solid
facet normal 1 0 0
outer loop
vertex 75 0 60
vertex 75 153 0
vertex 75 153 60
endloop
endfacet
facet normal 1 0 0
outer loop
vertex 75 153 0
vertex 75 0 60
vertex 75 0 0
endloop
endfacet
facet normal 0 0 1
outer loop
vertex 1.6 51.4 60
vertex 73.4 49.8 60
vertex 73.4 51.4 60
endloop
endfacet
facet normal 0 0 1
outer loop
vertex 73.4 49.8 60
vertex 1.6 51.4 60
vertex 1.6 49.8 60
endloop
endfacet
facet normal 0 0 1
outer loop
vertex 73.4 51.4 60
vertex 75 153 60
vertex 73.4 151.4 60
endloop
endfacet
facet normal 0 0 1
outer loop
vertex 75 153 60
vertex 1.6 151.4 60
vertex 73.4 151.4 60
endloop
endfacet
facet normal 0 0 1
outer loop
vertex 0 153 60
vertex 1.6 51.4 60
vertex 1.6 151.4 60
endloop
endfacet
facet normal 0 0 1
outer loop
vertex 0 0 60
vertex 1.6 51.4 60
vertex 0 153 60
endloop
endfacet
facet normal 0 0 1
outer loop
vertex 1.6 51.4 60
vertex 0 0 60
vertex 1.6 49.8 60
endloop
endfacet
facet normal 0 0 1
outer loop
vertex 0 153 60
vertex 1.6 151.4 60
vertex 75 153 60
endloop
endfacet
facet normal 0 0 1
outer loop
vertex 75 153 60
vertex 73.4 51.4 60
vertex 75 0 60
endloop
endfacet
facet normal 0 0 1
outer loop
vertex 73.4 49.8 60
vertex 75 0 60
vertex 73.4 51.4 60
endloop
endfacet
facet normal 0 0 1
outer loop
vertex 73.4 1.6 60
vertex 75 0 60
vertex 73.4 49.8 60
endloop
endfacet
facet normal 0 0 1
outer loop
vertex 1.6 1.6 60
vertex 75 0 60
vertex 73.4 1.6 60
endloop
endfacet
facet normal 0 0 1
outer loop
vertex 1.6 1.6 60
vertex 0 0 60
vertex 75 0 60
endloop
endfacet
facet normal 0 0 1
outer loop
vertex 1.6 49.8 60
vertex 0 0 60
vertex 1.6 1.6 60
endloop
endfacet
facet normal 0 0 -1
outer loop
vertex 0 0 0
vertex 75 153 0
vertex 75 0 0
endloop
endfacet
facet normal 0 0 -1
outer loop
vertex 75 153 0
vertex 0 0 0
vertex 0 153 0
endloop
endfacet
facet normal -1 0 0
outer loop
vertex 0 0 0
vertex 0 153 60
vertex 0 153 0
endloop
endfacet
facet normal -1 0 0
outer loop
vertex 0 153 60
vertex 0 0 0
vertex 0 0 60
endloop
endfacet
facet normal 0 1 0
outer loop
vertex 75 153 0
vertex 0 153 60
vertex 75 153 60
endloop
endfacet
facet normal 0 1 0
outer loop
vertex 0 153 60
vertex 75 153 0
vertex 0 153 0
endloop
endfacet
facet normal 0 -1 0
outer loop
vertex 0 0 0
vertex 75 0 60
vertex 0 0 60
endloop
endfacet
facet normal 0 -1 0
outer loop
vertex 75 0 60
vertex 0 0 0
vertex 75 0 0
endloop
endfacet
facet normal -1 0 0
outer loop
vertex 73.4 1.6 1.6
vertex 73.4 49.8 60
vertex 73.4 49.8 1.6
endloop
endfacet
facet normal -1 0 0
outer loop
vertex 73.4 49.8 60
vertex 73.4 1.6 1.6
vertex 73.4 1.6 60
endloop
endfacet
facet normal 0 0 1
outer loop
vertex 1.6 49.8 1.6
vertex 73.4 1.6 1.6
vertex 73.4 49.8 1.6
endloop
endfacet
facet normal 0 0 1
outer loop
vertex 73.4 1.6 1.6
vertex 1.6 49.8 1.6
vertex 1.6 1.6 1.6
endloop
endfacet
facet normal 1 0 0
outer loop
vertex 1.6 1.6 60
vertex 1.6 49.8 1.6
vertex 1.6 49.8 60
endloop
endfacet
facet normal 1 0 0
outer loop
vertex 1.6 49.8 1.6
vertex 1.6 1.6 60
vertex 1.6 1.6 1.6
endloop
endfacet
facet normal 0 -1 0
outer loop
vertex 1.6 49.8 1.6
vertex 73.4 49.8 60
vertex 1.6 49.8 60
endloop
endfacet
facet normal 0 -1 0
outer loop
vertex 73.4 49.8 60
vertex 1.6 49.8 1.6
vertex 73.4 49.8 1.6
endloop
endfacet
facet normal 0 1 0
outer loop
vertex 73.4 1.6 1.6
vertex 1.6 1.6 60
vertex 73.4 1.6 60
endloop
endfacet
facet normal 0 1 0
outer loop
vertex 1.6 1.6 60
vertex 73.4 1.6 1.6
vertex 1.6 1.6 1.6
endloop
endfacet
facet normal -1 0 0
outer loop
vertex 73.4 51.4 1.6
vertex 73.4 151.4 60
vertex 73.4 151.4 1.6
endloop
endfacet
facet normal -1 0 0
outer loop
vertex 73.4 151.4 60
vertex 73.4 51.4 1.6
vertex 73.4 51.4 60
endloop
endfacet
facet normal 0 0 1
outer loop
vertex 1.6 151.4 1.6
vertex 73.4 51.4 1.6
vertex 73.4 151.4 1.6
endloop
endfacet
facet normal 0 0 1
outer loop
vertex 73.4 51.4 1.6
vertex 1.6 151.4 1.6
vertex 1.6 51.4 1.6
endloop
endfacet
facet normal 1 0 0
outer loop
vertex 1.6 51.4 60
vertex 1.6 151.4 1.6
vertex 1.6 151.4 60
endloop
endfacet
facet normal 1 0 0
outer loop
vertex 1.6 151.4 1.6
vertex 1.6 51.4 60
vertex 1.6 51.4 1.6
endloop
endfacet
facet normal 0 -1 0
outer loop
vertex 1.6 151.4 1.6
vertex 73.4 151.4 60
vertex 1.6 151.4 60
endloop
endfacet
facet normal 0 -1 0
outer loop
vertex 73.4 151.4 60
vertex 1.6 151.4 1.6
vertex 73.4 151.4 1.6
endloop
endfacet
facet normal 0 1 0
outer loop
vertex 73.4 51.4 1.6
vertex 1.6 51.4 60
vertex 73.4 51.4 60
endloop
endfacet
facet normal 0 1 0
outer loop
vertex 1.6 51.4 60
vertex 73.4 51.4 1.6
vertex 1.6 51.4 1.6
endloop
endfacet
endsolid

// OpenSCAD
include <boardgame_insert_toolkit_lib.2.scad>;

// determines whether lids are output.
g_b_print_lid = true;

// determines whether boxes are output.
g_b_print_box = true;

// Focus on one box
g_isolated_print_box = "";

// Used to visualize how all of the boxes fit together.
g_b_visualization = false;

// this is the outer wall thickness.
// Default = 1.5mm
g_wall_thickness = 1.6;

// The tolerance value is extra space put between planes of the lid and box
// that fit together. Increase the tolerance to loosen the fit and decrease it
// to tighten it.
//
// Note that the tolerance is applied exclusively to the lid.
// So if the lid is too tight or too loose, change this value ( up for looser
// fit, down for tighter fit ) and you only need to reprint the lid.
//
// The exception is the stackable box, where the bottom of the box is the lid
// of the box below, in which case the tolerance also affects that box bottom.
//
g_tolerance = 0.15;

// This adjusts the position of the lid detents downward.
// The larger the value, the bigger the gap between the lid and the box.
g_tolerance_detents_pos = 0.1;

data = [
  [
    "simple box",
    [
      [BOX_SIZE_XYZ, [75, 153, 60.0]],
      [BOX_NO_LID_B, t],
      // domes
      [
        BOX_COMPONENT,
        [
          [CMP_COMPARTMENT_SIZE_XYZ, [71.8, 48.2, 58.4]],
          [CMP_NUM_COMPARTMENTS_XY, [1, 1]],
          [POSITION_XY, [CENTER, 0]]
        ]
      ],
      // level 3 parts
      [
        BOX_COMPONENT,
        [
          [CMP_COMPARTMENT_SIZE_XYZ, [71.8, 100, 58.4]],
          [CMP_NUM_COMPARTMENTS_XY, [1, 1]],
          [POSITION_XY, [CENTER, MAX]]
        ]
      ],
    ]
  ]
];

MakeAll();
